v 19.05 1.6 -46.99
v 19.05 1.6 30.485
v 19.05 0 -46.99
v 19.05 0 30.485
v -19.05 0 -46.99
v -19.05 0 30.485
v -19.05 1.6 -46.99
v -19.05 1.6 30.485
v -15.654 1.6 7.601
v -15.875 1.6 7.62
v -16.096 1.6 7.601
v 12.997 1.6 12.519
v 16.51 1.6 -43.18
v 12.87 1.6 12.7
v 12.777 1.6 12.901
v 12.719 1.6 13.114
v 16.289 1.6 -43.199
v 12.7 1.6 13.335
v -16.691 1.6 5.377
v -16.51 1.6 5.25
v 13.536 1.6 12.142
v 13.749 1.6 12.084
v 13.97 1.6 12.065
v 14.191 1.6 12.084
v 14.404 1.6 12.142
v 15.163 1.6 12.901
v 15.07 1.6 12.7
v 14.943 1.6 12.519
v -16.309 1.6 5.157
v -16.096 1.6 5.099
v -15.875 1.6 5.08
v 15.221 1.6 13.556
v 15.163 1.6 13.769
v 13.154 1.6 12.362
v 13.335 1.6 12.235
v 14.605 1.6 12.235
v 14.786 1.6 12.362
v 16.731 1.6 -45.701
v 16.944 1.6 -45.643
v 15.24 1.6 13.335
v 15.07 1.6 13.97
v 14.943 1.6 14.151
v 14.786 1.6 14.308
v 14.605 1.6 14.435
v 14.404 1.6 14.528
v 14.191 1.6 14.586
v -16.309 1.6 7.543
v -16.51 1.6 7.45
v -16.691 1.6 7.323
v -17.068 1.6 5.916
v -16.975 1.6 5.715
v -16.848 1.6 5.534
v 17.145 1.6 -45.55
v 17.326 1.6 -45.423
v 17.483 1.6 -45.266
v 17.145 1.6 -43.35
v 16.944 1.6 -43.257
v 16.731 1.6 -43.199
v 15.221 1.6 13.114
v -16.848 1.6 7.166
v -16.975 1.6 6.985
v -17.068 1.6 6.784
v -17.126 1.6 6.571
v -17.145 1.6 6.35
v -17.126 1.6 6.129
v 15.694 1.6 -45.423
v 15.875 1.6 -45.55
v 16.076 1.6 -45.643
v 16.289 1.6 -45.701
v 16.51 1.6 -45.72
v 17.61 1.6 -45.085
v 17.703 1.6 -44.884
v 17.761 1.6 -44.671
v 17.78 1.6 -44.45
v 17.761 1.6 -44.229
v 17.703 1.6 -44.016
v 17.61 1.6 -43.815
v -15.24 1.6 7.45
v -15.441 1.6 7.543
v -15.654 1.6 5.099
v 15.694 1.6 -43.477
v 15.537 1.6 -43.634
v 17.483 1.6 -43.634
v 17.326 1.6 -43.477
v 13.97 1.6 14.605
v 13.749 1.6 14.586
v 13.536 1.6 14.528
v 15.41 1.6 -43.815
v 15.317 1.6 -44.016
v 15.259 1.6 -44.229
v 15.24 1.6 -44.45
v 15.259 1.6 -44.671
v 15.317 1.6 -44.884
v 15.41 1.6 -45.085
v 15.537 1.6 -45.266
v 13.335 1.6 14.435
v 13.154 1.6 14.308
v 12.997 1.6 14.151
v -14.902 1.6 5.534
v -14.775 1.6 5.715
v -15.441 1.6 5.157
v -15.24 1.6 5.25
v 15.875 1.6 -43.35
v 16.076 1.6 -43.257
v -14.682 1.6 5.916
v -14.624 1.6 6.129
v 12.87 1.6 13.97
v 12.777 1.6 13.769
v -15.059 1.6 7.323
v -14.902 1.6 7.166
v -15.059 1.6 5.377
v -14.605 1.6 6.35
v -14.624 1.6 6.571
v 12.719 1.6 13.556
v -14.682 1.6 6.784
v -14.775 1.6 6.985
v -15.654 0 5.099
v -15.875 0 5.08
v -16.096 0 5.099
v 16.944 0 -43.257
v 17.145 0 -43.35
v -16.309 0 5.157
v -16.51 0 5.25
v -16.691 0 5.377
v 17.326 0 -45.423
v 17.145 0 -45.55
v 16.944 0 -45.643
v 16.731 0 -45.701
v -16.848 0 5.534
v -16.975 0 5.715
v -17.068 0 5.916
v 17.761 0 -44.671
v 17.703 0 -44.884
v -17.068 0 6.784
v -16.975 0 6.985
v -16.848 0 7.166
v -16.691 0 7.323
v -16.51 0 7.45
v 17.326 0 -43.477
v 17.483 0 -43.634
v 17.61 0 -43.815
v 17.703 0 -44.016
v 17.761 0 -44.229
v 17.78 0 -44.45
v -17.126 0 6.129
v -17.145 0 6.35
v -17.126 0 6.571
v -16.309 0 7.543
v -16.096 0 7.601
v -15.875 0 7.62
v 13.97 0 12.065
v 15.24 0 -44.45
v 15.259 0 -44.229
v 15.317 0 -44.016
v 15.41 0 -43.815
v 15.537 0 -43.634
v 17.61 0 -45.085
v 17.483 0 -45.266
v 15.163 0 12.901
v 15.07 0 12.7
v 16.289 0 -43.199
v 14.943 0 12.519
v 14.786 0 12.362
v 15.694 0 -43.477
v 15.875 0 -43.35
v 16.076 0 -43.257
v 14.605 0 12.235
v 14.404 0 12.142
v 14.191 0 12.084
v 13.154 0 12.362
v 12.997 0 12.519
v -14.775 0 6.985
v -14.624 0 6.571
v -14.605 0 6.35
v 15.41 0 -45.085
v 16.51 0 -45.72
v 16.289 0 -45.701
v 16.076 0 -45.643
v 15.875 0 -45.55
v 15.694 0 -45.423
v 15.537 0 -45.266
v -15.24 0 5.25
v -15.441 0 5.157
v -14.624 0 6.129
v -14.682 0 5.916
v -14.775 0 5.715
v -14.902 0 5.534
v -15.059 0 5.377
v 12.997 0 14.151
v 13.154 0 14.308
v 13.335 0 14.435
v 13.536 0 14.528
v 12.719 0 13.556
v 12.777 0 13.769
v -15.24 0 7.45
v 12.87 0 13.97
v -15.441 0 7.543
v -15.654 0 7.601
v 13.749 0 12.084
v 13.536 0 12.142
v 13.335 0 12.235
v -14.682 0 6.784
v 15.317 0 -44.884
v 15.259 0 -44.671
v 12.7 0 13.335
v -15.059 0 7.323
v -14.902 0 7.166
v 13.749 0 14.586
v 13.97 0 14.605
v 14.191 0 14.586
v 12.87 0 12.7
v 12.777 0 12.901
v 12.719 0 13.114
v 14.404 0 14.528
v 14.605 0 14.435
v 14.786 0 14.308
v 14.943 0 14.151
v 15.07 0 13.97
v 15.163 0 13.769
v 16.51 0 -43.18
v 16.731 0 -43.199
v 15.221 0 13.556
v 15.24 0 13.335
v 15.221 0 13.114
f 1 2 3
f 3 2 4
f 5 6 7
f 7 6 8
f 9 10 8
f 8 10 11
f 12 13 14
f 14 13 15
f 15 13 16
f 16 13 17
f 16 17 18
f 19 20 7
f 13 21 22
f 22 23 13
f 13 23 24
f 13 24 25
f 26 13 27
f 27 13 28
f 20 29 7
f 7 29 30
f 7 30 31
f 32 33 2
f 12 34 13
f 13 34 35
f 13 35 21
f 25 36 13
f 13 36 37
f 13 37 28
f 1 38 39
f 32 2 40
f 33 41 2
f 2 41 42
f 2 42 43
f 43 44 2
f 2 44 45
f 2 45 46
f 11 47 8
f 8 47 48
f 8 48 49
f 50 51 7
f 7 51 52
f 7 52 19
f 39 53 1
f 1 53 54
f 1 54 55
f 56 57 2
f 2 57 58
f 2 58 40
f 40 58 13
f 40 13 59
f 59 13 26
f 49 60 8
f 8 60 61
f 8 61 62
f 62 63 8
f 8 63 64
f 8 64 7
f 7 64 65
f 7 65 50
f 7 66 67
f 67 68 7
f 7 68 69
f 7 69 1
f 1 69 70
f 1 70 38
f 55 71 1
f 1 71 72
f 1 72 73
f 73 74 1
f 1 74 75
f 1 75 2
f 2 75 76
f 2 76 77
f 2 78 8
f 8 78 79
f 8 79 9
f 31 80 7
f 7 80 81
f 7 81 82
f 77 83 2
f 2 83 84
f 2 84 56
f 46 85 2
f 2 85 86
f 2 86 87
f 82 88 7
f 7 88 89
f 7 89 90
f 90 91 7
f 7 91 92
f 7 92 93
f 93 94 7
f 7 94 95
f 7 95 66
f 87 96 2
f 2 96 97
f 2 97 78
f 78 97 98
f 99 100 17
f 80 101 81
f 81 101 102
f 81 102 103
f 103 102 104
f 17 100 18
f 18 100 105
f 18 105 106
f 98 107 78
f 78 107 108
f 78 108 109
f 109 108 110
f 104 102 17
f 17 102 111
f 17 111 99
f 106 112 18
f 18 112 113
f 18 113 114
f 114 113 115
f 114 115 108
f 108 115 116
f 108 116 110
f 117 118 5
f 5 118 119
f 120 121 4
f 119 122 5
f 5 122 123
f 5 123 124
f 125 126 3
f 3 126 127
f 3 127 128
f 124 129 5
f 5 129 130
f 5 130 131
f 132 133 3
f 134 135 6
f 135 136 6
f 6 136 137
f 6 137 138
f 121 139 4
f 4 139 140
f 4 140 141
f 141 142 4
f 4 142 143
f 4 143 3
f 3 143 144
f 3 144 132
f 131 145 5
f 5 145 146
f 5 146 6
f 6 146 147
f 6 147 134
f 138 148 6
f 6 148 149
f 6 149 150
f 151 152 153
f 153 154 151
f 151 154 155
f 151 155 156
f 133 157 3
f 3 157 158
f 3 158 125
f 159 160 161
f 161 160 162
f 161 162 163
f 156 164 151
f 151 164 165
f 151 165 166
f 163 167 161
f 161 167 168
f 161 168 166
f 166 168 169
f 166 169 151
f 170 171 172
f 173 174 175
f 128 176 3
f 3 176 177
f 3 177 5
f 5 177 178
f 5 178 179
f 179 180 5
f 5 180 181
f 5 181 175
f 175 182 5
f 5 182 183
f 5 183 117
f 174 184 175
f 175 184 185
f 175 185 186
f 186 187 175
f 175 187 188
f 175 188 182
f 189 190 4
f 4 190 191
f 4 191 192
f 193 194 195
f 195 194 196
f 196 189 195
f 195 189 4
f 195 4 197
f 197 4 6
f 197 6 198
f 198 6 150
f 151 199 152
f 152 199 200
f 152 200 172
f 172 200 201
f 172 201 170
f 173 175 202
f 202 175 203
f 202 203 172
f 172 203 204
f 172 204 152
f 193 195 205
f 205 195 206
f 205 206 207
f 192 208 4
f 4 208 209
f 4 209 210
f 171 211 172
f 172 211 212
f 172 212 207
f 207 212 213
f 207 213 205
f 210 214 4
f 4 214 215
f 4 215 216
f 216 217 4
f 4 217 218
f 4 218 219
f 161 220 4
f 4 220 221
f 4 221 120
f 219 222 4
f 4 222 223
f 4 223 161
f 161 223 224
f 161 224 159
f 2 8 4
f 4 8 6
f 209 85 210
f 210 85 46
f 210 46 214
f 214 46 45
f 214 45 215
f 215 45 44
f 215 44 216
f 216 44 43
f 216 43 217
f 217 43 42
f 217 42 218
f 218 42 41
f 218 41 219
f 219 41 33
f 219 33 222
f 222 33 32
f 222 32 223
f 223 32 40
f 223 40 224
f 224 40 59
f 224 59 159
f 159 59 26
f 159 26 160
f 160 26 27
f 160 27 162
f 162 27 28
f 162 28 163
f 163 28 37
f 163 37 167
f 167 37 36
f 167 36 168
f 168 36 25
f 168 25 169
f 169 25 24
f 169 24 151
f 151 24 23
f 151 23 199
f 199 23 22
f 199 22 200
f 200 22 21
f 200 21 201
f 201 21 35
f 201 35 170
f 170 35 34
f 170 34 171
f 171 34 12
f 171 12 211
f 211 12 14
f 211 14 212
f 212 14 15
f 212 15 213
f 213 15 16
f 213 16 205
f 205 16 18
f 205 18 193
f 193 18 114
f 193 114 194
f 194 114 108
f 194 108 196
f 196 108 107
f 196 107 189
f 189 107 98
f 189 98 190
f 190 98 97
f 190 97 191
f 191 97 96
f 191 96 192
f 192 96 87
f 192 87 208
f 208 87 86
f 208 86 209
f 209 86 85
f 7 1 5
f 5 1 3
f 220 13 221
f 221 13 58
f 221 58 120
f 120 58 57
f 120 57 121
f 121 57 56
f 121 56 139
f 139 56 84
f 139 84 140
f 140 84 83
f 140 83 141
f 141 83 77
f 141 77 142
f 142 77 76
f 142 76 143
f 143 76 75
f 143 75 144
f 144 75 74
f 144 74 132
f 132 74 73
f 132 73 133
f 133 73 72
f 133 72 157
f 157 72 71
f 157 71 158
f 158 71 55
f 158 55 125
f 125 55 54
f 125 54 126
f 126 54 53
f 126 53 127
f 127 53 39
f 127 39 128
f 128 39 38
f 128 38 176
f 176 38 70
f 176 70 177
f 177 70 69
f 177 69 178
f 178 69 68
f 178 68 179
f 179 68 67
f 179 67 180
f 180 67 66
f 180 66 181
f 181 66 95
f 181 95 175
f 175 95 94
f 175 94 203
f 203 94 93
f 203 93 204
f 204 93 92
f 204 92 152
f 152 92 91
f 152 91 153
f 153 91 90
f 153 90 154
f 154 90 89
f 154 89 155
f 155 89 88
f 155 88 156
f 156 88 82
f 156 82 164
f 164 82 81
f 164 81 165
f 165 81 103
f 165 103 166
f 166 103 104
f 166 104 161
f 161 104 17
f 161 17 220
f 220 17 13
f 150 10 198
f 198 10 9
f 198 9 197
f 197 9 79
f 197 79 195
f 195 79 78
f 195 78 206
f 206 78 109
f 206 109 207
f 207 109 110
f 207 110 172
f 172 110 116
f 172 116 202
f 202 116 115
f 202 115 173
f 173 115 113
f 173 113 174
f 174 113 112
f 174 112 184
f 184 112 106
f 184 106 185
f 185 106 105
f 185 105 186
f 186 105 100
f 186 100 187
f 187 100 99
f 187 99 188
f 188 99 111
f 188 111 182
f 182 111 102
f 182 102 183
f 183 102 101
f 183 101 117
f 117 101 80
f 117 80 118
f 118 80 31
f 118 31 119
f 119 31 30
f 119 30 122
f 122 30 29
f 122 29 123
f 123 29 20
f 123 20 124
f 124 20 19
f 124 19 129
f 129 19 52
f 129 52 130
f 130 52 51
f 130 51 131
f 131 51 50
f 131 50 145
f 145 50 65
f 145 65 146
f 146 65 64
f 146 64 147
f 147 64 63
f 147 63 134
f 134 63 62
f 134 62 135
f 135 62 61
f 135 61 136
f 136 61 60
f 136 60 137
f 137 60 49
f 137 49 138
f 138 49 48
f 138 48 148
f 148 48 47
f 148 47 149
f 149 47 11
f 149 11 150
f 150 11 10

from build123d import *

# Parameters (mm, degrees)
SKETCH1_W                   = 38.1
SKETCH1_H                   = 93.98
BOSS_EXTRUDE1_DEPTH         = 1.6
CUT_EXTRUDE1_DEPTH          = 51.729898482
CUT_EXTRUDE1_DEPTH_BACK     = 51.729898482
SKETCH2_R                   = 1.27
CUT_EXTRUDE2_DEPTH          = 51.729898482
CUT_EXTRUDE2_DEPTH_BACK     = 51.729898482
SKETCH3_R                   = 1.27
SKETCH3_W                   = 38.1
SKETCH3_H                   = 16.505
BODY_MOVE_COPY1_DEPTH       = 1.6
BODY_MOVE_COPY1_2_OUTLINE_W = 38.1
BODY_MOVE_COPY1_2_OUTLINE_H = 16.505
BODY_MOVE_COPY1_2_OUTLINE_R = 1.27
BODY_MOVE_COPY1_2_DEPTH     = 1.6


# Read off the part's stored shape, not the designer's step: Body-Move/Copy1
with BuildPart() as part:
    # Sketch1 → Boss-Extrude1 (new body)
    with BuildSketch(Plane(origin=(0, 0, 0), x_dir=(1, 0, 0), z_dir=(0, 1, 0))):
        Rectangle(SKETCH1_W, SKETCH1_H)
    extrude(amount=BOSS_EXTRUDE1_DEPTH)

    # Sketch2 → Cut-Extrude1 (cut, two sides: drawn at the far end of the back side and taken through both)
    with BuildSketch(Plane(origin=(0, 1.6, 0), x_dir=(1, 0, 0), z_dir=(0, 1, 0)).offset(-CUT_EXTRUDE1_DEPTH_BACK)):
        with Locations(Location((13.97, -29.84, 0), (0, 0, 270))):
            Circle(SKETCH2_R)
        with Locations(Location((-15.875, -6.35, 0), (0, 0, 270))):
            Circle(SKETCH2_R)
        with Locations(Location((16.51, 44.45, 0), (0, 0, 270))):
            Circle(SKETCH2_R)
    extrude(amount=CUT_EXTRUDE1_DEPTH + CUT_EXTRUDE1_DEPTH_BACK, mode=Mode.SUBTRACT)

    # Sketch3 → Cut-Extrude2 (cut, two sides: drawn at the far end of the back side and taken through both)
    with BuildSketch(Plane(origin=(0, 1.6, 0), x_dir=(1, 0, 0), z_dir=(0, 1, 0)).offset(-CUT_EXTRUDE2_DEPTH_BACK)):
        with Locations(Location((-15.875, -6.35, 0), (0, 0, 270))):
            Circle(SKETCH3_R)
        with Locations((0, -18.5875)):
            Rectangle(SKETCH3_W, SKETCH3_H)
    extrude(amount=CUT_EXTRUDE2_DEPTH + CUT_EXTRUDE2_DEPTH_BACK, mode=Mode.SUBTRACT)


with BuildPart() as cut_extrude2_piece_1:
    # of the separate pieces the step leaves, piece 1, a body of its own (cut_extrude2_pieces)
    add(part.part.solids().sort_by_distance((-19.05, 0, -46.99))[0])


with BuildPart() as cut_extrude2_piece_2:
    # of the separate pieces the step leaves, piece 2, a body of its own (cut_extrude2_pieces)
    add(part.part.solids().sort_by_distance((-19.05, 0, 46.99))[0])

    # Body-Move/Copy1 outline → Body-Move/Copy1 (cut)
    with BuildSketch(Plane(origin=(0, 0, 0), x_dir=(1, 0, 0), z_dir=(0, 1, 0))):
        with BuildLine():
            Line((12.875982176, -30.485), (-19.05, -30.485))
            Line((-19.05, -30.485), (-19.05, -46.99))
            Line((-19.05, -46.99), (19.05, -46.99))
            Line((19.05, -46.99), (19.05, -30.485))
            Line((19.05, -30.485), (15.064017824, -30.485))
            ThreePointArc((15.064017824, -30.485), (13.97, -31.11), (12.875982176, -30.485))
        make_face()
    extrude(amount=BODY_MOVE_COPY1_DEPTH, mode=Mode.SUBTRACT)

    # Body-Move_Copy1 2 outline → Body-Move_Copy1 2 (add)
    # profile 1 of 2: a face of its own
    with BuildSketch(Plane(origin=(0, 0, 0), x_dir=(1, 0, 0), z_dir=(0, 1, 0))):
        with Locations((0, -18.5875)):
            Rectangle(BODY_MOVE_COPY1_2_OUTLINE_W, BODY_MOVE_COPY1_2_OUTLINE_H)
        with Locations((13.97, -13.335)):
            Circle(BODY_MOVE_COPY1_2_OUTLINE_R, mode=Mode.SUBTRACT)
    # profile 2 of 2: a face of its own
    with BuildSketch(Plane(origin=(0, 0, 0), x_dir=(1, 0, 0), z_dir=(0, 1, 0))):
        with BuildLine():
            ThreePointArc((15.064017824, -30.485), (13.97, -28.57), (12.875982176, -30.485))
            Line((12.875982176, -30.485), (15.064017824, -30.485))
        make_face()
    extrude(amount=BODY_MOVE_COPY1_2_DEPTH)

    # Combine1: union Cut-Extrude2 piece 1
    add(cut_extrude2_piece_1.part)


solid = cut_extrude2_piece_2.part
